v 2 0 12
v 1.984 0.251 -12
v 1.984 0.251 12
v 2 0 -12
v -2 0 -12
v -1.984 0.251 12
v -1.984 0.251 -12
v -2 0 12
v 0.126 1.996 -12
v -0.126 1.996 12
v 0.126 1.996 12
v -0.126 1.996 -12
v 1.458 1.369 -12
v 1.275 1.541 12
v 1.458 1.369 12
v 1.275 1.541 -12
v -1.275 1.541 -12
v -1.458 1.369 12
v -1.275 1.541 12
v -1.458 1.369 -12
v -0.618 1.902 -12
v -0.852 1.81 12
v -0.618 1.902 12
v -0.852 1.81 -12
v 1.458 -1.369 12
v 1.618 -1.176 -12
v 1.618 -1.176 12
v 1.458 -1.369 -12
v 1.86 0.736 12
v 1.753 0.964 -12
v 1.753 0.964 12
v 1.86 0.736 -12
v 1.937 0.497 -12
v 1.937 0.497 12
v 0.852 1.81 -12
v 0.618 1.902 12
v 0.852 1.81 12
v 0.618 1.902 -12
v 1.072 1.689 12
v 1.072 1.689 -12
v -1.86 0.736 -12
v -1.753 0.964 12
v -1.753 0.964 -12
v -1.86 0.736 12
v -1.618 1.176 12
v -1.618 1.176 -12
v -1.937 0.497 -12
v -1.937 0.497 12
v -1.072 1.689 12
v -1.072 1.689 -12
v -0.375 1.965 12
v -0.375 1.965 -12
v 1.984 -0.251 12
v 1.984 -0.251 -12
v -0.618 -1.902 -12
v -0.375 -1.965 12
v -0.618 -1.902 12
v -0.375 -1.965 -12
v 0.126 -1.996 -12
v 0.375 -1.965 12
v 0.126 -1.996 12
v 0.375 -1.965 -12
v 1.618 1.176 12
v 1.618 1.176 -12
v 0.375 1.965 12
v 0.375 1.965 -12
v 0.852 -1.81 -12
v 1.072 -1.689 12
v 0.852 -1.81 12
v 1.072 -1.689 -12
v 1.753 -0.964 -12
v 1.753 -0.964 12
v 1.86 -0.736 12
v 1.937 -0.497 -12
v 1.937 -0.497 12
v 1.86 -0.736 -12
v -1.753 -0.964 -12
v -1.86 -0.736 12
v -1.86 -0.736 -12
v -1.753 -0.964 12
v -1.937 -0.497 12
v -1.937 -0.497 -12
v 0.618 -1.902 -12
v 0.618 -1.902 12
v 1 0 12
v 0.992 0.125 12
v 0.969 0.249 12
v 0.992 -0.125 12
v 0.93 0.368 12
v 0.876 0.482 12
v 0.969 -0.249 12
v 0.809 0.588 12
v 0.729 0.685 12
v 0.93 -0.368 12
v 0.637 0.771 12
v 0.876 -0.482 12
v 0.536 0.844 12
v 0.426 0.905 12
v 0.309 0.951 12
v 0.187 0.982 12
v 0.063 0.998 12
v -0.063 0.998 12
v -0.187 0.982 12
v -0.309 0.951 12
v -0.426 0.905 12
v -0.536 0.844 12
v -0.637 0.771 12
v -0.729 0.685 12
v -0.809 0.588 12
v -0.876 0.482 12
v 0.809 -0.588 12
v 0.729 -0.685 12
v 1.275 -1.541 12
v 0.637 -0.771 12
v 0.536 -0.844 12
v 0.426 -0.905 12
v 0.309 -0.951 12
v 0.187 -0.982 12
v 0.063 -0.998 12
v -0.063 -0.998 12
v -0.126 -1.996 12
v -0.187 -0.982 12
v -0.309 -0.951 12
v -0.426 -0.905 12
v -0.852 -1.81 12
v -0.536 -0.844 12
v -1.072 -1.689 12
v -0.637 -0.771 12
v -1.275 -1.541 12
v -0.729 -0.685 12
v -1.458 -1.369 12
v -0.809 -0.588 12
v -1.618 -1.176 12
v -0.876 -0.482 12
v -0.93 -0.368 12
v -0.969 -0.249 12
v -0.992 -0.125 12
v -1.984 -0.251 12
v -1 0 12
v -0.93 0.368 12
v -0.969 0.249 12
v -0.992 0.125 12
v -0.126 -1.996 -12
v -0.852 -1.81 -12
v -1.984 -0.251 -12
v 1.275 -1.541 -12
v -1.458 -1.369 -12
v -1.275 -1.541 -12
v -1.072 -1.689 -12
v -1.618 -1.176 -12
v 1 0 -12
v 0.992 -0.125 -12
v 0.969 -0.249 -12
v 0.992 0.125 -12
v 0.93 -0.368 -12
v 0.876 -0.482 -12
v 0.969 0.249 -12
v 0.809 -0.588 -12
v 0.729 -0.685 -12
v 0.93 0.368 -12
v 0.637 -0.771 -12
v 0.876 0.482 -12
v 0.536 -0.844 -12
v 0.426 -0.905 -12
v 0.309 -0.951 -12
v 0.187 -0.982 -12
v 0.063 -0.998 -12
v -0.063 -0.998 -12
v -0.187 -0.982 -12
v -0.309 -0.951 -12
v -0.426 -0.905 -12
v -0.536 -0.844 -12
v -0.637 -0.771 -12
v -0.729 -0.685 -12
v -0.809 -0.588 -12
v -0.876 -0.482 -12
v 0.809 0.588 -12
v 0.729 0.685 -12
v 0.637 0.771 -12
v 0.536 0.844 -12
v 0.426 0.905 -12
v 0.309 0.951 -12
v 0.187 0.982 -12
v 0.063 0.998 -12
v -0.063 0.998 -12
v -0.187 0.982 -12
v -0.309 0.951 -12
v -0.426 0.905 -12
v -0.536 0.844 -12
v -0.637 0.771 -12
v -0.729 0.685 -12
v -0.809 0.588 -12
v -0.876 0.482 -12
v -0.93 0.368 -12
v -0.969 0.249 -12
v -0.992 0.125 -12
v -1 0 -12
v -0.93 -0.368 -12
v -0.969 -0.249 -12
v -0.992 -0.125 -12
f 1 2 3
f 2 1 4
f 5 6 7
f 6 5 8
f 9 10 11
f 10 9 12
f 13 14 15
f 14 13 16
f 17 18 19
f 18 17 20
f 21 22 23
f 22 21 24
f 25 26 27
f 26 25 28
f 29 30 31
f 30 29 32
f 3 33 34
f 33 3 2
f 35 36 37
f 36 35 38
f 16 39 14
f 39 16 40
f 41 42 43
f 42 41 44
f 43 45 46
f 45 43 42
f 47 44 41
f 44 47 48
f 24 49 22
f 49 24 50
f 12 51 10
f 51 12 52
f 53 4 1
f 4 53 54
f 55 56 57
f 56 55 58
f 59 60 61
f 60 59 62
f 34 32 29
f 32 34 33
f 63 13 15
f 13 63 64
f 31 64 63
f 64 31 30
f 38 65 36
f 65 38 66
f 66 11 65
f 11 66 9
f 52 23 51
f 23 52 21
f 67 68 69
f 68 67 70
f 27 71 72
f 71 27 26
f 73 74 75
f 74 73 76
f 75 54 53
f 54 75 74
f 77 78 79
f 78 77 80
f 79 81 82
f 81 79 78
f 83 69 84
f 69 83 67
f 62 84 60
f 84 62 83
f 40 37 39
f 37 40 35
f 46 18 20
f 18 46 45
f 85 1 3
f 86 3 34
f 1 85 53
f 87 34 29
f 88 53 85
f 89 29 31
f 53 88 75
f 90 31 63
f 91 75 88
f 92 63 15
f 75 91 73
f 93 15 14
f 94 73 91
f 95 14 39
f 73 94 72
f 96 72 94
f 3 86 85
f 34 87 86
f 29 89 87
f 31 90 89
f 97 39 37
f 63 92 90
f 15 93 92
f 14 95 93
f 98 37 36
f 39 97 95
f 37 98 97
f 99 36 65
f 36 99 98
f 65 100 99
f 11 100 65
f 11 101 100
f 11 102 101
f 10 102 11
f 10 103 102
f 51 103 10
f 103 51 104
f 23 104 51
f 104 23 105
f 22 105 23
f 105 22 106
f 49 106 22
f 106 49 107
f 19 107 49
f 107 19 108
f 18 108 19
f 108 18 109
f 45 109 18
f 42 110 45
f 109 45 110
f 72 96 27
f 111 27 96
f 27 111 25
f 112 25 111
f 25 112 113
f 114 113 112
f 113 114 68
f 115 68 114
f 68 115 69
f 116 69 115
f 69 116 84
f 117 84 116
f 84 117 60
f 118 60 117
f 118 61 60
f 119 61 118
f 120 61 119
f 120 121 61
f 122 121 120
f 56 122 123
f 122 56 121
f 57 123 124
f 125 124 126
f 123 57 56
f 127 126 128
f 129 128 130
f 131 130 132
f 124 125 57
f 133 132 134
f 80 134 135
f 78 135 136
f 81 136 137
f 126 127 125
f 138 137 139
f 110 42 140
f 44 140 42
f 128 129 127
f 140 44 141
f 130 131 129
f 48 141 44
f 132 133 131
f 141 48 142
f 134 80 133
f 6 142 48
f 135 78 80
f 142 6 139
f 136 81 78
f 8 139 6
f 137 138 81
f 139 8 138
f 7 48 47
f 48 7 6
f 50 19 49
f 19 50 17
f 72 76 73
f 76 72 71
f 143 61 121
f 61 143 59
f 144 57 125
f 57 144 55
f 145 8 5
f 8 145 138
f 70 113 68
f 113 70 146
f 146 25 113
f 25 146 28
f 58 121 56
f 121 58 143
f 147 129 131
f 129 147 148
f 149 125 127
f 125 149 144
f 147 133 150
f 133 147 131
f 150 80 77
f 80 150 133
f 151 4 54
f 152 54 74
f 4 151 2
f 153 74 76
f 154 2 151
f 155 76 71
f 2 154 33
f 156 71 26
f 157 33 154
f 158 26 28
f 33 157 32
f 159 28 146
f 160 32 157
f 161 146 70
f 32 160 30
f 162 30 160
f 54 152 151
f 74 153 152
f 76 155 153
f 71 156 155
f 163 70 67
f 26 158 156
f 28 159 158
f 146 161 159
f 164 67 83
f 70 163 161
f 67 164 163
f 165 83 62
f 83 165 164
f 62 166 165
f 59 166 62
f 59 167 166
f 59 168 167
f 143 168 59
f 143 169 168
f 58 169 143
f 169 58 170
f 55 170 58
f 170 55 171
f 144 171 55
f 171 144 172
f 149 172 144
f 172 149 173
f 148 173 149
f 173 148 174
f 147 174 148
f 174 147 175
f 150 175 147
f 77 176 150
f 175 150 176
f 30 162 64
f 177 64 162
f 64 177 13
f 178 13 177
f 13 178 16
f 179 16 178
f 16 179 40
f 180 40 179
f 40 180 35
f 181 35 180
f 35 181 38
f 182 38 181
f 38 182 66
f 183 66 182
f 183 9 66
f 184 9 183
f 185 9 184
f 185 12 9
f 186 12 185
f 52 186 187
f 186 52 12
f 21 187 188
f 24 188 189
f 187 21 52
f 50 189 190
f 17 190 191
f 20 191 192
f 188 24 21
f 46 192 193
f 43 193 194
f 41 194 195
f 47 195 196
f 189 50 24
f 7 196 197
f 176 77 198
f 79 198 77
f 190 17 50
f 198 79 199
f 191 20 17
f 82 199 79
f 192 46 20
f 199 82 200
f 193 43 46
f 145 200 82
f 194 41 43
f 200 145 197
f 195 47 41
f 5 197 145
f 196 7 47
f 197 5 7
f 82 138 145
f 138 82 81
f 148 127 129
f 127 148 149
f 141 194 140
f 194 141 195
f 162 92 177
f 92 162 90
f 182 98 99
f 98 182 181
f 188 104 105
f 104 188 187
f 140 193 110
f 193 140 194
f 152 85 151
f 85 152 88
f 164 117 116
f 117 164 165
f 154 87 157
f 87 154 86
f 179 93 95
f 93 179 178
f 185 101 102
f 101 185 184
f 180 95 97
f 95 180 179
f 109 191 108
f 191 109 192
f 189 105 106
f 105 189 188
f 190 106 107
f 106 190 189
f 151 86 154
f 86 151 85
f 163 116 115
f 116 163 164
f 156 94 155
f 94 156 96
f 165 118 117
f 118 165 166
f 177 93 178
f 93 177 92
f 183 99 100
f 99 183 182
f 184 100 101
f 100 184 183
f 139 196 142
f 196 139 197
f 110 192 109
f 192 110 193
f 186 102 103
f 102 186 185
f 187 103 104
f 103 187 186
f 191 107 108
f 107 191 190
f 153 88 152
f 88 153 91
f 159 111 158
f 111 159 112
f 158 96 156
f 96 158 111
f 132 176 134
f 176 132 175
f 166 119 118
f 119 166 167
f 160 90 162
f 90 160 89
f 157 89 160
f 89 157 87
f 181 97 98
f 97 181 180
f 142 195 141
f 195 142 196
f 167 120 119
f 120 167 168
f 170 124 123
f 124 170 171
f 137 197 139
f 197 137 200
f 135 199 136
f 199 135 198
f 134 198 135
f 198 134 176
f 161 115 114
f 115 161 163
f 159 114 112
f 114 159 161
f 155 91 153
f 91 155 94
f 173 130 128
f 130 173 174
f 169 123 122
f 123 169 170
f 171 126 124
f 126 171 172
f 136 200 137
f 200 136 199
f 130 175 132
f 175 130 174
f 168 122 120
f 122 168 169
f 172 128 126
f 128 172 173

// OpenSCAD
$fn = 50;


difference() {
	union() {
		translate(v = [0, 0, -12.0000000000]) {
			cylinder(h = 24, r = 2.0000000000);
		}
	}
	union() {
		translate(v = [0, 0, -100.0000000000]) {
			cylinder(h = 200, r = 1.0000000000);
		}
	}
}
